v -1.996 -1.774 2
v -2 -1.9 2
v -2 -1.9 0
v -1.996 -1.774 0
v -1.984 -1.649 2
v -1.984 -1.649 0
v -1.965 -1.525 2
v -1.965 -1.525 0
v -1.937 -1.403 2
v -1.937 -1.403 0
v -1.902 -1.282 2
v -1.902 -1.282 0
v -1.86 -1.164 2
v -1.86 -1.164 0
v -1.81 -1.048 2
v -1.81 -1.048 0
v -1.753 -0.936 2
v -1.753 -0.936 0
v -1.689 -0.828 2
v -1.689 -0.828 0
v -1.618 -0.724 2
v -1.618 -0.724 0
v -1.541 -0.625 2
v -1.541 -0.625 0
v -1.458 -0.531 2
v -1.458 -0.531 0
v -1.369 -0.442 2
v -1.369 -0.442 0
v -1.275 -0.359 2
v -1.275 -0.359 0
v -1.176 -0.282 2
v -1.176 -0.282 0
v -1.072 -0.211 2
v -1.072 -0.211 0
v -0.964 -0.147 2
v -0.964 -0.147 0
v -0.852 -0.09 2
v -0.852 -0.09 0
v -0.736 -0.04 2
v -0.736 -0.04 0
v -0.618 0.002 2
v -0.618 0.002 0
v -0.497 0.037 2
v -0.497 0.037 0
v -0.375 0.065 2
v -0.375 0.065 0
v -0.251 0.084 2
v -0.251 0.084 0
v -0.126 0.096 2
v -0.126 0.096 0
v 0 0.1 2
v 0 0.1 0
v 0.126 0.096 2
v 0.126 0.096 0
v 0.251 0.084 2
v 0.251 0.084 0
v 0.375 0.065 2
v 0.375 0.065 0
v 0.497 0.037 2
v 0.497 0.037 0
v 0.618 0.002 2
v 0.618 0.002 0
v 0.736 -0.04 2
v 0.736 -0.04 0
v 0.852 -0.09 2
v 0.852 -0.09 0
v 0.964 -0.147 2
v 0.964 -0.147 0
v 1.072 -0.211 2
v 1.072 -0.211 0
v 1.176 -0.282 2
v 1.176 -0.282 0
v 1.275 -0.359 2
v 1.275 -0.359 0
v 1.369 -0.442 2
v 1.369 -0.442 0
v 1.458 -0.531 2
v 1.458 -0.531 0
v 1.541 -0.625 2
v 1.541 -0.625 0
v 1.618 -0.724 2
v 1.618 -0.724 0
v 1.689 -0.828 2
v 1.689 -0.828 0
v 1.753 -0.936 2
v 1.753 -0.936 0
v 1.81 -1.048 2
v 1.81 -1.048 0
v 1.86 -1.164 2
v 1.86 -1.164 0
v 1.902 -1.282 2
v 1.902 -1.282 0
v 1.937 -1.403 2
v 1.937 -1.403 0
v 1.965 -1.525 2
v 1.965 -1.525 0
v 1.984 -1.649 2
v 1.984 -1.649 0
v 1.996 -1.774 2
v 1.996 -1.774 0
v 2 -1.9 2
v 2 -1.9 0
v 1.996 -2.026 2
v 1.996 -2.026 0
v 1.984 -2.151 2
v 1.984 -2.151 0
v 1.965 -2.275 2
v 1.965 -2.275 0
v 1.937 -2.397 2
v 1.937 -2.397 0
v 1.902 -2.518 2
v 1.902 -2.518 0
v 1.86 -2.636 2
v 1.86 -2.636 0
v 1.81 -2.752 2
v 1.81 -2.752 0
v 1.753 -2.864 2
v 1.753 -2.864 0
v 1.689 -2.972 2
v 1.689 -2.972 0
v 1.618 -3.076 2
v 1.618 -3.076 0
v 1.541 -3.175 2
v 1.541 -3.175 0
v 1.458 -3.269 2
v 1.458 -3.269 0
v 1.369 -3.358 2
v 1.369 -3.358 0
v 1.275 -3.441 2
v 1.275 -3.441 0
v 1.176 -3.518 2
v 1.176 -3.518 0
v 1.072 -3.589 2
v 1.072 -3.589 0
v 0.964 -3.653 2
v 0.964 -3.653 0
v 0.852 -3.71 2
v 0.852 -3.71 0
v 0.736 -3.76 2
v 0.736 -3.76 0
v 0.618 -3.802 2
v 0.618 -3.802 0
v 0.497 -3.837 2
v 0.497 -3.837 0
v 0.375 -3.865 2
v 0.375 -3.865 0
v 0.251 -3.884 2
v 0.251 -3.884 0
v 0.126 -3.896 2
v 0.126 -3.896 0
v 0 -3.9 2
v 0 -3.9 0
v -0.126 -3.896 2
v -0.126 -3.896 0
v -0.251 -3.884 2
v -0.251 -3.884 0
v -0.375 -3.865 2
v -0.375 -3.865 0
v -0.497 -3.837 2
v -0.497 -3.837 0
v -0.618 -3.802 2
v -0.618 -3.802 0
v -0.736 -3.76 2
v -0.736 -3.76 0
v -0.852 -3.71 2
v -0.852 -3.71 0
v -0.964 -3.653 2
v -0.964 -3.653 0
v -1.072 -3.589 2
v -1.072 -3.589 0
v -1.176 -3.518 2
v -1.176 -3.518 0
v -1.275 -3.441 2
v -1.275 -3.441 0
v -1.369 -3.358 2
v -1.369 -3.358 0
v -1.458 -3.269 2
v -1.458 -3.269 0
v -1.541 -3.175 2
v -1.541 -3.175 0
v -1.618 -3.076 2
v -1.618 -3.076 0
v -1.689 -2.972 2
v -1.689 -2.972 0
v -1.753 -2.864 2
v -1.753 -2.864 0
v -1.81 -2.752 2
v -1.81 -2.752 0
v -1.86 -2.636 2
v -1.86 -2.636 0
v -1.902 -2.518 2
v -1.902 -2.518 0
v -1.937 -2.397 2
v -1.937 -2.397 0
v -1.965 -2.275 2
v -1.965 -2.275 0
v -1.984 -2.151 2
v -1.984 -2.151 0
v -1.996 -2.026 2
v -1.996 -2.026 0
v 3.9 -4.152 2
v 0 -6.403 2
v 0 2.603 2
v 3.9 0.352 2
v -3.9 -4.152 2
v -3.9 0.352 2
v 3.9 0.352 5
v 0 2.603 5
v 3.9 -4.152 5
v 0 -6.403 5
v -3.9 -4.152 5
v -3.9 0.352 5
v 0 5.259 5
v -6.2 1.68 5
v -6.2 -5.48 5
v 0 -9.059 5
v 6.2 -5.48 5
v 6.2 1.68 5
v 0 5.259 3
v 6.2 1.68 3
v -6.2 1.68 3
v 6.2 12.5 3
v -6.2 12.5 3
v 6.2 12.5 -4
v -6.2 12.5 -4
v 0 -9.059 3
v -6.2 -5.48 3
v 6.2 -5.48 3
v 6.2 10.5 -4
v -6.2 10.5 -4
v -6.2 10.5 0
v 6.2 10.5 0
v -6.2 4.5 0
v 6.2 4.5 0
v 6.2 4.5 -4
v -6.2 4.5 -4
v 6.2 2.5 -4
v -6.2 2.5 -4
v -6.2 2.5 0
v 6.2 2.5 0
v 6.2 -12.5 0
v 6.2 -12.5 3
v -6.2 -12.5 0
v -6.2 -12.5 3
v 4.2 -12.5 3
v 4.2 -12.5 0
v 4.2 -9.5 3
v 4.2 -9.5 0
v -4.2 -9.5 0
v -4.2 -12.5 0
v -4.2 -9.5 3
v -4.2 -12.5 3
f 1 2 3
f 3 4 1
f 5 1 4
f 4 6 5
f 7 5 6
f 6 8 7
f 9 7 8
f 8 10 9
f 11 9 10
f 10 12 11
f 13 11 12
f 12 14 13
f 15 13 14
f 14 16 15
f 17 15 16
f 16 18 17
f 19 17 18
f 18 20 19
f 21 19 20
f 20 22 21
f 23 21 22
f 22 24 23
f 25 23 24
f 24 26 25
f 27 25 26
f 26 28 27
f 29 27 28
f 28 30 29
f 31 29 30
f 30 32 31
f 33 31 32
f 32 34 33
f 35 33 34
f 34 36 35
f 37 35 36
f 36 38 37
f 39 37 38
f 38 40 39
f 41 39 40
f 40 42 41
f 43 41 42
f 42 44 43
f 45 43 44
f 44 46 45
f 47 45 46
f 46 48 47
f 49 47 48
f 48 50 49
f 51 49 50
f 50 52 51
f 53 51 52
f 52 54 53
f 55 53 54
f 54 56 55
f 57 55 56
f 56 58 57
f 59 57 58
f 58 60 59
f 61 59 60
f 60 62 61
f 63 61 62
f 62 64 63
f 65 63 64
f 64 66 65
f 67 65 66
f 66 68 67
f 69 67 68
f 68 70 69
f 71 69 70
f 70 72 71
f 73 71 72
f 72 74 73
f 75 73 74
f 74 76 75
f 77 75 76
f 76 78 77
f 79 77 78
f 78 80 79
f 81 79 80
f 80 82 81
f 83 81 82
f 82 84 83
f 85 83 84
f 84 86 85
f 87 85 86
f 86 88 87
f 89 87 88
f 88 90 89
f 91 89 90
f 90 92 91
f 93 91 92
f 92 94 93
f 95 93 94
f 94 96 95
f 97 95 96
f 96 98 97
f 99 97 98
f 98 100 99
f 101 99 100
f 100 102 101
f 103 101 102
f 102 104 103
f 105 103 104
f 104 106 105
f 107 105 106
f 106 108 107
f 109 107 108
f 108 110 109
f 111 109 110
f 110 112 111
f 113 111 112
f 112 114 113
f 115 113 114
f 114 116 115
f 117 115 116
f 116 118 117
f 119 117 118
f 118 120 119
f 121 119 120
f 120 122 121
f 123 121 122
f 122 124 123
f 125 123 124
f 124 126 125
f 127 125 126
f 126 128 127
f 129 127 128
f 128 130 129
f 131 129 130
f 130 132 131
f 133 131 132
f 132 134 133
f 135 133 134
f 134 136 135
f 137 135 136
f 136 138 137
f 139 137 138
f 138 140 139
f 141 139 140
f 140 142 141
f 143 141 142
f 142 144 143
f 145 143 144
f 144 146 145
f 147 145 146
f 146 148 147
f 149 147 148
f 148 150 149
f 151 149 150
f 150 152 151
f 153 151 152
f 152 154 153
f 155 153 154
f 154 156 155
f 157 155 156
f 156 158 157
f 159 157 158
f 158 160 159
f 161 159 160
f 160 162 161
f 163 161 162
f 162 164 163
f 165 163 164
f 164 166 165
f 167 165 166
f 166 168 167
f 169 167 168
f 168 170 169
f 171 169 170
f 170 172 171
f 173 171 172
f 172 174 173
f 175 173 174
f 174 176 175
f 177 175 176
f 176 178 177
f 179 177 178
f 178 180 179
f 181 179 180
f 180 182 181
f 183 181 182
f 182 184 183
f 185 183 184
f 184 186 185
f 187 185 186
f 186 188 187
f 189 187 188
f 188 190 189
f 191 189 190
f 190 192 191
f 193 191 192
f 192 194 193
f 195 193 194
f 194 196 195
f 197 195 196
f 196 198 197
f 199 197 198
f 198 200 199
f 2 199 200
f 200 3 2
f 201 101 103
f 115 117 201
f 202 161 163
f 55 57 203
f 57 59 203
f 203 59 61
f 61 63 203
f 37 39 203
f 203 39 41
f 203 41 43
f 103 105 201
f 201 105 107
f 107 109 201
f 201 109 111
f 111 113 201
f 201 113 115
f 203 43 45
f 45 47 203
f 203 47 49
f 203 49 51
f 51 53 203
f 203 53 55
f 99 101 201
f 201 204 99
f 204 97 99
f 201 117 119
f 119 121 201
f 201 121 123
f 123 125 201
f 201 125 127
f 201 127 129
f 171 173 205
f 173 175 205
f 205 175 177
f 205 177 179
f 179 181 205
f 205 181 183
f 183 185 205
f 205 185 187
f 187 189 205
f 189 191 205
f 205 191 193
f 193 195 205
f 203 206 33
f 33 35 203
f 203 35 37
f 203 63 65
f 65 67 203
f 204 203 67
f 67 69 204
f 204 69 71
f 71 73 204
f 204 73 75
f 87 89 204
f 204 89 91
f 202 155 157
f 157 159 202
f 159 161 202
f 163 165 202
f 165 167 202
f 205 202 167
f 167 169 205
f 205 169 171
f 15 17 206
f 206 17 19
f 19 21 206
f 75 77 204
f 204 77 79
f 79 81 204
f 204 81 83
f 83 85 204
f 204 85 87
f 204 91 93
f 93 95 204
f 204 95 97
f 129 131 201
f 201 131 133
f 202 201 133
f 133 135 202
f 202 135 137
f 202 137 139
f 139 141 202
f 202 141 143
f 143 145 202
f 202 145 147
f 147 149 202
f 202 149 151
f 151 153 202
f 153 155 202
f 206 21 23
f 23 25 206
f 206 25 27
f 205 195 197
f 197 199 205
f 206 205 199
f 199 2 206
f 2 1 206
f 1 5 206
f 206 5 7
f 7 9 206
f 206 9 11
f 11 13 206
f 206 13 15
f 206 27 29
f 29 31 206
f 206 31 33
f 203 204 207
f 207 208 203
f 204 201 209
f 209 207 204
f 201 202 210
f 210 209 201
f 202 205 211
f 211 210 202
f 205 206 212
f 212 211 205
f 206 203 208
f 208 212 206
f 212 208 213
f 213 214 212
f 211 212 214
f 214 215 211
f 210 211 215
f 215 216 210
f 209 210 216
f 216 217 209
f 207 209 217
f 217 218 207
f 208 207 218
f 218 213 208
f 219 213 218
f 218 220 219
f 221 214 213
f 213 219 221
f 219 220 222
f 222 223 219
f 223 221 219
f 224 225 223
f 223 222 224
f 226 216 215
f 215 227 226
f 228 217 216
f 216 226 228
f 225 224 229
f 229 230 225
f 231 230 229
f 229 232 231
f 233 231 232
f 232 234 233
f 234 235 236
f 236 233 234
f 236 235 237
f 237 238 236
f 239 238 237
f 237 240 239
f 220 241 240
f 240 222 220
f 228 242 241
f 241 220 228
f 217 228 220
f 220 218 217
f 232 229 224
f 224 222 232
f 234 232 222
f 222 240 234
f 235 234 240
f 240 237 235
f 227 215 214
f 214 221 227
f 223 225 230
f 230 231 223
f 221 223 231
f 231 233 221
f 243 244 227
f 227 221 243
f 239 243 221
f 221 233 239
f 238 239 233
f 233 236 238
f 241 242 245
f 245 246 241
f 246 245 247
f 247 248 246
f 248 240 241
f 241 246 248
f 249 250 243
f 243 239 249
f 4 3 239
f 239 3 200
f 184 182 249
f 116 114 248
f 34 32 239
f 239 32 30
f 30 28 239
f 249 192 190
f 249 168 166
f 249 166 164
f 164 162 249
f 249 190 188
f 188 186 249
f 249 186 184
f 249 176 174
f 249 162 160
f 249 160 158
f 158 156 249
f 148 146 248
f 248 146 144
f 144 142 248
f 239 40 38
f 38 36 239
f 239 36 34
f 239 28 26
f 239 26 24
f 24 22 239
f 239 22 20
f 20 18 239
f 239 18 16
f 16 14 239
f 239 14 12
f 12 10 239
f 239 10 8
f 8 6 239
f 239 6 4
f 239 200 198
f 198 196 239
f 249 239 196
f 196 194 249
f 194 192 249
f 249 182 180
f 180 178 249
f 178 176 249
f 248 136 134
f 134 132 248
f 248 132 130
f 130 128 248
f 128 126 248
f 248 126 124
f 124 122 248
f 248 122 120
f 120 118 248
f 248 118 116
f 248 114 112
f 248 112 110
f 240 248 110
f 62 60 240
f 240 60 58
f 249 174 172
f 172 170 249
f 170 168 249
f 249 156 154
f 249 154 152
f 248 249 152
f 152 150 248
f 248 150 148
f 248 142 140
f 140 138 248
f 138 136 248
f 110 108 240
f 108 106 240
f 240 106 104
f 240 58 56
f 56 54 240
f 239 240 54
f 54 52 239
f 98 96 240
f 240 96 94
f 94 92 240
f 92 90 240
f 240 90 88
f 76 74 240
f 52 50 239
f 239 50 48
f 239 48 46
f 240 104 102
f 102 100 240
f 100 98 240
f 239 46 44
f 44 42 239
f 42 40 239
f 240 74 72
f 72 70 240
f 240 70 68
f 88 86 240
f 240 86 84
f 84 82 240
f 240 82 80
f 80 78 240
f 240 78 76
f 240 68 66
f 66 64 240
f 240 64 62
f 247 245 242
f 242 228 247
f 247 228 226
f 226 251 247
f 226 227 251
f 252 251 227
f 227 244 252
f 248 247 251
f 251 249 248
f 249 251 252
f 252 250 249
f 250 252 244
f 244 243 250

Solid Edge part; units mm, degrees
sketch "Sketch1" plane through (0, 0, 0) normal (0, 0, 1) x (1, 0, 0)
  line L0 (3.9, 2.5) -> (3.9, -7.5)
  line L1 (6.2, -7.5) -> (3.9, -7.5)
  line L2 (6.2, -12.5) -> (6.2, -7.5)
  line L3 (4.2, -12.5) -> (6.2, -12.5)
  line L4 (4.2, -9.5) -> (4.2, -12.5)
  line L5 (0, -9.5) -> (4.2, -9.5)
  line L6 (0, -9.5) -> (-4.2, -9.5)
  line L7 (-4.2, -9.5) -> (-4.2, -12.5)
  line L8 (-4.2, -12.5) -> (-6.2, -12.5)
  line L9 (-6.2, -12.5) -> (-6.2, -7.5)
  line L10 (-6.2, -7.5) -> (-3.9, -7.5)
  line L11 (-3.9, -7.5) -> (-3.9, 2.5)
  line L12 (-3.9, 2.5) -> (-3.9, 12.5)
  line L13 (-3.9, 12.5) -> (3.9, 12.5)
  line L14 (3.9, 12.5) -> (3.9, 2.5)
  circle A0 centre (0, -1.9) radius 2
extrude "Protrusion1" add sketch "Sketch1" along normal blind 3
sketch "Sketch2" plane through (0, 0, 0) normal (0, 0, -1) x (0, 1, 0)
  line L0 (12.5, -6.2) -> (-7.5, -6.2)
  line L1 (-7.5, -6.2) -> (-7.5, -3.9)
  line L2 (-7.5, -3.9) -> (7.5, -3.9)
  line L3 (7.5, -3.9) -> (7.5, 3.9)
  line L4 (7.5, 3.9) -> (-7.5, 3.9)
  line L5 (-7.5, 3.9) -> (-7.5, 6.2)
  line L6 (-7.5, 6.2) -> (12.5, 6.2)
  line L7 (12.5, 6.2) -> (12.5, -3.9)
  line L8 (12.5, -3.9) -> (12.5, -6.2)
extrude "Protrusion2" add sketch "Sketch2" against normal up to vertex (3 mm away)
sketch "Sketch3" plane through (0, 0, 3) normal (0, 0, 1) x (1, 0, 0)
  line L0 (0, 5.2591) -> (-6.2, 1.6796)
  line L1 (-6.2, 1.6796) -> (-6.2, -5.4796)
  line L2 (-6.2, -5.4796) -> (0, -9.0591)
  line L3 (0, -9.0591) -> (6.2, -5.4796)
  line L4 (6.2, -5.4796) -> (6.2, 1.6796)
  line L5 (6.2, 1.6796) -> (0, 5.2591)
  line L6 (0, 2.6033) -> (-3.9, 0.3517)
  line L7 (-3.9, 0.3517) -> (-3.9, -4.1517)
  line L8 (-3.9, -4.1517) -> (0, -6.4033)
  line L9 (0, -6.4033) -> (3.9, -4.1517)
  line L10 (3.9, -4.1517) -> (3.9, 0.3517)
  line L11 (3.9, 0.3517) -> (0, 2.6033)
extrude "ExtrudedProtrusion_3" add sketch "Sketch3" along normal blind 2
sketch "Sketch4" plane through (0, 0, 3) normal (0, 0, 1) x (1, 0, 0)
  line L0 (3.9, 0.3517) -> (0, 2.6033)
  line L1 (0, 2.6033) -> (-3.9, 0.3517)
  line L2 (-3.9, 0.3517) -> (-3.9, -4.1517)
  line L3 (-3.9, -4.1517) -> (0, -6.4033)
  line L4 (0, -6.4033) -> (3.9, -4.1517)
  line L5 (3.9, -4.1517) -> (3.9, 0.3517)
extrude "ExtrudedCutout_1" cut sketch "Sketch4" against normal blind 1
sketch "Sketch5" plane through (0, 0, 0) normal (0, 0, -1) x (-1, 0, 0)
  line L0 (6.2, 10.5) -> (-6.2, 10.5)
  line L1 (-6.2, 10.5) -> (-6.2, 12.5)
  line L2 (-6.2, 12.5) -> (6.2, 12.5)
  line L3 (6.2, 12.5) -> (6.2, 10.5)
  line L4 (6.2, 4.5) -> (-6.2, 4.5)
  line L5 (-6.2, 4.5) -> (-6.2, 2.5)
  line L6 (-6.2, 2.5) -> (6.2, 2.5)
  line L7 (6.2, 2.5) -> (6.2, 4.5)
extrude "ExtrudedProtrusion_4" add sketch "Sketch5" along normal blind 4
